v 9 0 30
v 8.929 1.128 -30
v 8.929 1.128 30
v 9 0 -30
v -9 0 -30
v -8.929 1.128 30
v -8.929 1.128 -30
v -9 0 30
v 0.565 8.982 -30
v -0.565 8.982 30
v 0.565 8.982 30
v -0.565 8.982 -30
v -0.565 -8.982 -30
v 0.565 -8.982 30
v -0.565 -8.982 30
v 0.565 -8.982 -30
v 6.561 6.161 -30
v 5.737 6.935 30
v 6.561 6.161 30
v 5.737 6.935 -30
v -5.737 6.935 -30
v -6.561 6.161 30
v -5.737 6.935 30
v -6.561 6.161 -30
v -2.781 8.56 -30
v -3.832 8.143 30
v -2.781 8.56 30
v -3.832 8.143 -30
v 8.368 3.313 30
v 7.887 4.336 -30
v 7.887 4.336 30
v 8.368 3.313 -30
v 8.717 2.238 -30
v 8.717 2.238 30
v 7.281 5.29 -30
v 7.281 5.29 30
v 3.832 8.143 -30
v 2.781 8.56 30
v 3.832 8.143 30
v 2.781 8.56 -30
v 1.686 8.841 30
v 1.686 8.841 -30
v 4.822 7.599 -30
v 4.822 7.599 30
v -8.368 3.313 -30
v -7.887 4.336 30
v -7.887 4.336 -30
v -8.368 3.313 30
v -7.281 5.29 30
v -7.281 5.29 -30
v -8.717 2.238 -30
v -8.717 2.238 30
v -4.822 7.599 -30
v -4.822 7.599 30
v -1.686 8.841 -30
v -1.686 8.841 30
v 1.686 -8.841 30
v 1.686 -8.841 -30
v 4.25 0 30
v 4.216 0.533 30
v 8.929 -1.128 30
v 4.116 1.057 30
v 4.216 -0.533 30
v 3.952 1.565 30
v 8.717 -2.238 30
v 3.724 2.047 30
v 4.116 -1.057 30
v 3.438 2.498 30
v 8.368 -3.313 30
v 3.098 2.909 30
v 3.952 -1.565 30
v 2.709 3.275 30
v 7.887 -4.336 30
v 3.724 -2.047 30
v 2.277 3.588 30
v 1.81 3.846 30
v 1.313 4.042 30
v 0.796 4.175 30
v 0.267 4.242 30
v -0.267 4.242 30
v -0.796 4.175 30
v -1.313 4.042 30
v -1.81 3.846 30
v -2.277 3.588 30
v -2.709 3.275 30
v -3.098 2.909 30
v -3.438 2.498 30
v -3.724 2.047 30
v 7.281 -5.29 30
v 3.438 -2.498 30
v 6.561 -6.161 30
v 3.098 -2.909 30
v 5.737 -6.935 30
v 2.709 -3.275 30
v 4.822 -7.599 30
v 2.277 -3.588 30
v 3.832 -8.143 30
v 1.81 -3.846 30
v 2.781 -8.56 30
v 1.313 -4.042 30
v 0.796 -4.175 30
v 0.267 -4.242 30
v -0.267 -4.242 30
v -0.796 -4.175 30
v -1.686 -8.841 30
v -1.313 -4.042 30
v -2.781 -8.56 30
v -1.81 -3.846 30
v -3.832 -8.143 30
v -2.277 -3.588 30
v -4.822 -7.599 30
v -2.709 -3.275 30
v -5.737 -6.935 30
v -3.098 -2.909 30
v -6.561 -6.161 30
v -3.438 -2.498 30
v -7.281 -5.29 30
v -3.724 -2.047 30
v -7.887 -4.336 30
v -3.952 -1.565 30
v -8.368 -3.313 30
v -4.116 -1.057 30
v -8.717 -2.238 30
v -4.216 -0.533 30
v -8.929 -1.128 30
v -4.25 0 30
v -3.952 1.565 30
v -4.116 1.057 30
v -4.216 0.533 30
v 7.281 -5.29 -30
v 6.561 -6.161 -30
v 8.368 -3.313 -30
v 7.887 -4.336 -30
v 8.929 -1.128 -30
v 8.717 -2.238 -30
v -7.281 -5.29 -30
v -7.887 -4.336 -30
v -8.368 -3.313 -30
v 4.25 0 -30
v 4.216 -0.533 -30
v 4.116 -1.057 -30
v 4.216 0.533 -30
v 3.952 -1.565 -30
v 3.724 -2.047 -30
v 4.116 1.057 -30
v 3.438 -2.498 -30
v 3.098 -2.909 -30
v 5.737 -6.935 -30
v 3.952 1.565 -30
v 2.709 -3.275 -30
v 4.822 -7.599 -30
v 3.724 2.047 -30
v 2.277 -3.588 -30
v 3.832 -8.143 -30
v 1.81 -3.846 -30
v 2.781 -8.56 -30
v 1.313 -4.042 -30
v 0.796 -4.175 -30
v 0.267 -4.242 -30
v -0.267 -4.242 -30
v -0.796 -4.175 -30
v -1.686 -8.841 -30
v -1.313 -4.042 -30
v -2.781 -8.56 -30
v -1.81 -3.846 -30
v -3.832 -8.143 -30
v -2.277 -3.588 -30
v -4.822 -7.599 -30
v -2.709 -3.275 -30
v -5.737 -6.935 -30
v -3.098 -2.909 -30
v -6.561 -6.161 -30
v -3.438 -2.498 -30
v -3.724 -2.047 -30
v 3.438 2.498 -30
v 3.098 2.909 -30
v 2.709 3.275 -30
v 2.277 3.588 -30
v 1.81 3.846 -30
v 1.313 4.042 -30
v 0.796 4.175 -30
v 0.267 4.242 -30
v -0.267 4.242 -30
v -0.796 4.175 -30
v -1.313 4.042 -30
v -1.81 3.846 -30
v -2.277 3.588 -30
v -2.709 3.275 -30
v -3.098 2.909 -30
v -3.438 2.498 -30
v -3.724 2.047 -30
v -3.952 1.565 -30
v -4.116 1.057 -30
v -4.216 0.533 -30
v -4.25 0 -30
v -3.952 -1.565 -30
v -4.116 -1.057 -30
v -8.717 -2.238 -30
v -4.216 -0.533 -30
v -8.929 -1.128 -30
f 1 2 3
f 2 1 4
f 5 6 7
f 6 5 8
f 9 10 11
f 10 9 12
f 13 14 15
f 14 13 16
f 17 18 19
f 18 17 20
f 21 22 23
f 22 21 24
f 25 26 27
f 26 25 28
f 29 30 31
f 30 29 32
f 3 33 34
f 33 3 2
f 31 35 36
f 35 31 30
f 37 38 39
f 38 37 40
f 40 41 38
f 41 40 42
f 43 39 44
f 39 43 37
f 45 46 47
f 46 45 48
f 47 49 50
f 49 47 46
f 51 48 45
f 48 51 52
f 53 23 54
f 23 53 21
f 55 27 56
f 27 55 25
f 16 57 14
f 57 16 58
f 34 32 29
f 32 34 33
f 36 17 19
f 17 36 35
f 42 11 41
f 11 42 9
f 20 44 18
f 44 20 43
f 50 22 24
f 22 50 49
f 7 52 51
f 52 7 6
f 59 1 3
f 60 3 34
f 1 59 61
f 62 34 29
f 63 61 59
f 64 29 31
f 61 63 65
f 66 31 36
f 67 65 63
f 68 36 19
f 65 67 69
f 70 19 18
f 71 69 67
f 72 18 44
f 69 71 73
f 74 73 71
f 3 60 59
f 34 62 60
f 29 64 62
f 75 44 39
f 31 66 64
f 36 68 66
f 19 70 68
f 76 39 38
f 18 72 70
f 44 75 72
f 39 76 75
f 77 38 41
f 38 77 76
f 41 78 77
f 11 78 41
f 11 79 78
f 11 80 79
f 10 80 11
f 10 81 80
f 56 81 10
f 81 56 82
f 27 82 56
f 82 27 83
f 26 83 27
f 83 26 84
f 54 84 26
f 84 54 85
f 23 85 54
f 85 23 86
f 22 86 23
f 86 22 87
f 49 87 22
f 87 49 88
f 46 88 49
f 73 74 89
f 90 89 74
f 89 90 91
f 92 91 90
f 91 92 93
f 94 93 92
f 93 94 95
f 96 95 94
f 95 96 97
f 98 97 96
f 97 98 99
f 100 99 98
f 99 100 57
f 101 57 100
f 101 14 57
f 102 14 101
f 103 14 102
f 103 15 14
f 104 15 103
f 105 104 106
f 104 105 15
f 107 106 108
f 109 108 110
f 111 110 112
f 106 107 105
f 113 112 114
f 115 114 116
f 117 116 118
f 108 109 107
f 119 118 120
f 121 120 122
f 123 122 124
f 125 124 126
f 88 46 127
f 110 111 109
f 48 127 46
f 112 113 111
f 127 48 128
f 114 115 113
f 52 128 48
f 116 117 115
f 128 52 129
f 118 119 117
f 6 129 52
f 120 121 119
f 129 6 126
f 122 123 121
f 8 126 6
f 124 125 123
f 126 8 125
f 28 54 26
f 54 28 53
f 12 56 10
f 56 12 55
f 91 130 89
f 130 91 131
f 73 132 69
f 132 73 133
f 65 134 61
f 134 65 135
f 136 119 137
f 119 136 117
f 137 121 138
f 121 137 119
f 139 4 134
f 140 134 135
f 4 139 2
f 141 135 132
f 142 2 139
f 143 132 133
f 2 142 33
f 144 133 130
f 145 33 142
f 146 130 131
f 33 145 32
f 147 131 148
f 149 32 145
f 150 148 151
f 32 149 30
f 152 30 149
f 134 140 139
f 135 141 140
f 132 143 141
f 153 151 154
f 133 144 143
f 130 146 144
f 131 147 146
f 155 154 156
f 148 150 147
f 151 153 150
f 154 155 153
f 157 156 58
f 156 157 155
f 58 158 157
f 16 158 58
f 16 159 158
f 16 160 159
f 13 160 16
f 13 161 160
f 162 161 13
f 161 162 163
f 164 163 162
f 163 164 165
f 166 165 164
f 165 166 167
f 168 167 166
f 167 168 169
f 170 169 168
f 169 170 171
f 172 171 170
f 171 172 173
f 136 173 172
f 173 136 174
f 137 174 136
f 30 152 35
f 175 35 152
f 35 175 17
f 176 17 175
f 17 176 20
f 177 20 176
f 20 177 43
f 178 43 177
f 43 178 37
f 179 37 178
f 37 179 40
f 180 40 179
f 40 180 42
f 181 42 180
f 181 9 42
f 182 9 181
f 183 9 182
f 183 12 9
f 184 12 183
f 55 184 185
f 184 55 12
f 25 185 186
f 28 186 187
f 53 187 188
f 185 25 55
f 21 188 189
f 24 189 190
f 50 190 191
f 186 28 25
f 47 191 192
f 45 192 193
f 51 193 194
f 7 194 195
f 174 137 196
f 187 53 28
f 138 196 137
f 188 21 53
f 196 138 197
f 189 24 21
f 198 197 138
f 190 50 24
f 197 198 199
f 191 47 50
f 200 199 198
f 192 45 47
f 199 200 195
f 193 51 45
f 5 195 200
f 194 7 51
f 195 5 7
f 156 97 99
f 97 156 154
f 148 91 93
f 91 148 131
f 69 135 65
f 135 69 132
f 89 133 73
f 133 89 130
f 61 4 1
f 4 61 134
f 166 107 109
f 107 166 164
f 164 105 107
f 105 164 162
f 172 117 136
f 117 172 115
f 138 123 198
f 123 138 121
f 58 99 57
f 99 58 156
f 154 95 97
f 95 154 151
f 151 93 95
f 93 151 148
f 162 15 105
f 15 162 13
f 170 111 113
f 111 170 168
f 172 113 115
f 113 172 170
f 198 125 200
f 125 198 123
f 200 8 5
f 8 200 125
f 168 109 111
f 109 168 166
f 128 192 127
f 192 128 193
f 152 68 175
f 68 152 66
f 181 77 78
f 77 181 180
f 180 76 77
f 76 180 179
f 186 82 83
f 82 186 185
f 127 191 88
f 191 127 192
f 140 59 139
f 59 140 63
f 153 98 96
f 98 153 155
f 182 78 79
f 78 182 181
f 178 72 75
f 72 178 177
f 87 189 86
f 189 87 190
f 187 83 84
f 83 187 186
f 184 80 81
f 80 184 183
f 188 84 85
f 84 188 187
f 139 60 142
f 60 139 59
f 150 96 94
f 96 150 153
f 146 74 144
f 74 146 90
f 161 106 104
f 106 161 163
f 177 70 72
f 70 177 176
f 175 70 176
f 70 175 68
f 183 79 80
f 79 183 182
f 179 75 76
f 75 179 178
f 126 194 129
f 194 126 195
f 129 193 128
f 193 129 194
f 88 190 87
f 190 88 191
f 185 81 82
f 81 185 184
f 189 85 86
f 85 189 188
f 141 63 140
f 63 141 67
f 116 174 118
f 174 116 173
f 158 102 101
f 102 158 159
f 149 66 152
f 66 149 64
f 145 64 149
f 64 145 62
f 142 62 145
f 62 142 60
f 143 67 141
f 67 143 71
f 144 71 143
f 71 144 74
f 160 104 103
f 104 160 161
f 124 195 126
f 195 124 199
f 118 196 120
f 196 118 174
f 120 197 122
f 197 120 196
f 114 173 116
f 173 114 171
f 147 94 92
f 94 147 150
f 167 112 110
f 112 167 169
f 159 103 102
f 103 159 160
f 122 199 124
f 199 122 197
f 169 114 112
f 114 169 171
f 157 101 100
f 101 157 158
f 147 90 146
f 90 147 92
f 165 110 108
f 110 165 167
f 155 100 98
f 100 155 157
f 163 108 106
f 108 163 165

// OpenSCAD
$fn = 50;


difference() {
	union() {
		translate(v = [0, 0, -30.0000000000]) {
			cylinder(h = 60, r = 9.0000000000);
		}
	}
	union() {
		translate(v = [0, 0, -100.0000000000]) {
			cylinder(h = 200, r = 4.2500000000);
		}
	}
}
